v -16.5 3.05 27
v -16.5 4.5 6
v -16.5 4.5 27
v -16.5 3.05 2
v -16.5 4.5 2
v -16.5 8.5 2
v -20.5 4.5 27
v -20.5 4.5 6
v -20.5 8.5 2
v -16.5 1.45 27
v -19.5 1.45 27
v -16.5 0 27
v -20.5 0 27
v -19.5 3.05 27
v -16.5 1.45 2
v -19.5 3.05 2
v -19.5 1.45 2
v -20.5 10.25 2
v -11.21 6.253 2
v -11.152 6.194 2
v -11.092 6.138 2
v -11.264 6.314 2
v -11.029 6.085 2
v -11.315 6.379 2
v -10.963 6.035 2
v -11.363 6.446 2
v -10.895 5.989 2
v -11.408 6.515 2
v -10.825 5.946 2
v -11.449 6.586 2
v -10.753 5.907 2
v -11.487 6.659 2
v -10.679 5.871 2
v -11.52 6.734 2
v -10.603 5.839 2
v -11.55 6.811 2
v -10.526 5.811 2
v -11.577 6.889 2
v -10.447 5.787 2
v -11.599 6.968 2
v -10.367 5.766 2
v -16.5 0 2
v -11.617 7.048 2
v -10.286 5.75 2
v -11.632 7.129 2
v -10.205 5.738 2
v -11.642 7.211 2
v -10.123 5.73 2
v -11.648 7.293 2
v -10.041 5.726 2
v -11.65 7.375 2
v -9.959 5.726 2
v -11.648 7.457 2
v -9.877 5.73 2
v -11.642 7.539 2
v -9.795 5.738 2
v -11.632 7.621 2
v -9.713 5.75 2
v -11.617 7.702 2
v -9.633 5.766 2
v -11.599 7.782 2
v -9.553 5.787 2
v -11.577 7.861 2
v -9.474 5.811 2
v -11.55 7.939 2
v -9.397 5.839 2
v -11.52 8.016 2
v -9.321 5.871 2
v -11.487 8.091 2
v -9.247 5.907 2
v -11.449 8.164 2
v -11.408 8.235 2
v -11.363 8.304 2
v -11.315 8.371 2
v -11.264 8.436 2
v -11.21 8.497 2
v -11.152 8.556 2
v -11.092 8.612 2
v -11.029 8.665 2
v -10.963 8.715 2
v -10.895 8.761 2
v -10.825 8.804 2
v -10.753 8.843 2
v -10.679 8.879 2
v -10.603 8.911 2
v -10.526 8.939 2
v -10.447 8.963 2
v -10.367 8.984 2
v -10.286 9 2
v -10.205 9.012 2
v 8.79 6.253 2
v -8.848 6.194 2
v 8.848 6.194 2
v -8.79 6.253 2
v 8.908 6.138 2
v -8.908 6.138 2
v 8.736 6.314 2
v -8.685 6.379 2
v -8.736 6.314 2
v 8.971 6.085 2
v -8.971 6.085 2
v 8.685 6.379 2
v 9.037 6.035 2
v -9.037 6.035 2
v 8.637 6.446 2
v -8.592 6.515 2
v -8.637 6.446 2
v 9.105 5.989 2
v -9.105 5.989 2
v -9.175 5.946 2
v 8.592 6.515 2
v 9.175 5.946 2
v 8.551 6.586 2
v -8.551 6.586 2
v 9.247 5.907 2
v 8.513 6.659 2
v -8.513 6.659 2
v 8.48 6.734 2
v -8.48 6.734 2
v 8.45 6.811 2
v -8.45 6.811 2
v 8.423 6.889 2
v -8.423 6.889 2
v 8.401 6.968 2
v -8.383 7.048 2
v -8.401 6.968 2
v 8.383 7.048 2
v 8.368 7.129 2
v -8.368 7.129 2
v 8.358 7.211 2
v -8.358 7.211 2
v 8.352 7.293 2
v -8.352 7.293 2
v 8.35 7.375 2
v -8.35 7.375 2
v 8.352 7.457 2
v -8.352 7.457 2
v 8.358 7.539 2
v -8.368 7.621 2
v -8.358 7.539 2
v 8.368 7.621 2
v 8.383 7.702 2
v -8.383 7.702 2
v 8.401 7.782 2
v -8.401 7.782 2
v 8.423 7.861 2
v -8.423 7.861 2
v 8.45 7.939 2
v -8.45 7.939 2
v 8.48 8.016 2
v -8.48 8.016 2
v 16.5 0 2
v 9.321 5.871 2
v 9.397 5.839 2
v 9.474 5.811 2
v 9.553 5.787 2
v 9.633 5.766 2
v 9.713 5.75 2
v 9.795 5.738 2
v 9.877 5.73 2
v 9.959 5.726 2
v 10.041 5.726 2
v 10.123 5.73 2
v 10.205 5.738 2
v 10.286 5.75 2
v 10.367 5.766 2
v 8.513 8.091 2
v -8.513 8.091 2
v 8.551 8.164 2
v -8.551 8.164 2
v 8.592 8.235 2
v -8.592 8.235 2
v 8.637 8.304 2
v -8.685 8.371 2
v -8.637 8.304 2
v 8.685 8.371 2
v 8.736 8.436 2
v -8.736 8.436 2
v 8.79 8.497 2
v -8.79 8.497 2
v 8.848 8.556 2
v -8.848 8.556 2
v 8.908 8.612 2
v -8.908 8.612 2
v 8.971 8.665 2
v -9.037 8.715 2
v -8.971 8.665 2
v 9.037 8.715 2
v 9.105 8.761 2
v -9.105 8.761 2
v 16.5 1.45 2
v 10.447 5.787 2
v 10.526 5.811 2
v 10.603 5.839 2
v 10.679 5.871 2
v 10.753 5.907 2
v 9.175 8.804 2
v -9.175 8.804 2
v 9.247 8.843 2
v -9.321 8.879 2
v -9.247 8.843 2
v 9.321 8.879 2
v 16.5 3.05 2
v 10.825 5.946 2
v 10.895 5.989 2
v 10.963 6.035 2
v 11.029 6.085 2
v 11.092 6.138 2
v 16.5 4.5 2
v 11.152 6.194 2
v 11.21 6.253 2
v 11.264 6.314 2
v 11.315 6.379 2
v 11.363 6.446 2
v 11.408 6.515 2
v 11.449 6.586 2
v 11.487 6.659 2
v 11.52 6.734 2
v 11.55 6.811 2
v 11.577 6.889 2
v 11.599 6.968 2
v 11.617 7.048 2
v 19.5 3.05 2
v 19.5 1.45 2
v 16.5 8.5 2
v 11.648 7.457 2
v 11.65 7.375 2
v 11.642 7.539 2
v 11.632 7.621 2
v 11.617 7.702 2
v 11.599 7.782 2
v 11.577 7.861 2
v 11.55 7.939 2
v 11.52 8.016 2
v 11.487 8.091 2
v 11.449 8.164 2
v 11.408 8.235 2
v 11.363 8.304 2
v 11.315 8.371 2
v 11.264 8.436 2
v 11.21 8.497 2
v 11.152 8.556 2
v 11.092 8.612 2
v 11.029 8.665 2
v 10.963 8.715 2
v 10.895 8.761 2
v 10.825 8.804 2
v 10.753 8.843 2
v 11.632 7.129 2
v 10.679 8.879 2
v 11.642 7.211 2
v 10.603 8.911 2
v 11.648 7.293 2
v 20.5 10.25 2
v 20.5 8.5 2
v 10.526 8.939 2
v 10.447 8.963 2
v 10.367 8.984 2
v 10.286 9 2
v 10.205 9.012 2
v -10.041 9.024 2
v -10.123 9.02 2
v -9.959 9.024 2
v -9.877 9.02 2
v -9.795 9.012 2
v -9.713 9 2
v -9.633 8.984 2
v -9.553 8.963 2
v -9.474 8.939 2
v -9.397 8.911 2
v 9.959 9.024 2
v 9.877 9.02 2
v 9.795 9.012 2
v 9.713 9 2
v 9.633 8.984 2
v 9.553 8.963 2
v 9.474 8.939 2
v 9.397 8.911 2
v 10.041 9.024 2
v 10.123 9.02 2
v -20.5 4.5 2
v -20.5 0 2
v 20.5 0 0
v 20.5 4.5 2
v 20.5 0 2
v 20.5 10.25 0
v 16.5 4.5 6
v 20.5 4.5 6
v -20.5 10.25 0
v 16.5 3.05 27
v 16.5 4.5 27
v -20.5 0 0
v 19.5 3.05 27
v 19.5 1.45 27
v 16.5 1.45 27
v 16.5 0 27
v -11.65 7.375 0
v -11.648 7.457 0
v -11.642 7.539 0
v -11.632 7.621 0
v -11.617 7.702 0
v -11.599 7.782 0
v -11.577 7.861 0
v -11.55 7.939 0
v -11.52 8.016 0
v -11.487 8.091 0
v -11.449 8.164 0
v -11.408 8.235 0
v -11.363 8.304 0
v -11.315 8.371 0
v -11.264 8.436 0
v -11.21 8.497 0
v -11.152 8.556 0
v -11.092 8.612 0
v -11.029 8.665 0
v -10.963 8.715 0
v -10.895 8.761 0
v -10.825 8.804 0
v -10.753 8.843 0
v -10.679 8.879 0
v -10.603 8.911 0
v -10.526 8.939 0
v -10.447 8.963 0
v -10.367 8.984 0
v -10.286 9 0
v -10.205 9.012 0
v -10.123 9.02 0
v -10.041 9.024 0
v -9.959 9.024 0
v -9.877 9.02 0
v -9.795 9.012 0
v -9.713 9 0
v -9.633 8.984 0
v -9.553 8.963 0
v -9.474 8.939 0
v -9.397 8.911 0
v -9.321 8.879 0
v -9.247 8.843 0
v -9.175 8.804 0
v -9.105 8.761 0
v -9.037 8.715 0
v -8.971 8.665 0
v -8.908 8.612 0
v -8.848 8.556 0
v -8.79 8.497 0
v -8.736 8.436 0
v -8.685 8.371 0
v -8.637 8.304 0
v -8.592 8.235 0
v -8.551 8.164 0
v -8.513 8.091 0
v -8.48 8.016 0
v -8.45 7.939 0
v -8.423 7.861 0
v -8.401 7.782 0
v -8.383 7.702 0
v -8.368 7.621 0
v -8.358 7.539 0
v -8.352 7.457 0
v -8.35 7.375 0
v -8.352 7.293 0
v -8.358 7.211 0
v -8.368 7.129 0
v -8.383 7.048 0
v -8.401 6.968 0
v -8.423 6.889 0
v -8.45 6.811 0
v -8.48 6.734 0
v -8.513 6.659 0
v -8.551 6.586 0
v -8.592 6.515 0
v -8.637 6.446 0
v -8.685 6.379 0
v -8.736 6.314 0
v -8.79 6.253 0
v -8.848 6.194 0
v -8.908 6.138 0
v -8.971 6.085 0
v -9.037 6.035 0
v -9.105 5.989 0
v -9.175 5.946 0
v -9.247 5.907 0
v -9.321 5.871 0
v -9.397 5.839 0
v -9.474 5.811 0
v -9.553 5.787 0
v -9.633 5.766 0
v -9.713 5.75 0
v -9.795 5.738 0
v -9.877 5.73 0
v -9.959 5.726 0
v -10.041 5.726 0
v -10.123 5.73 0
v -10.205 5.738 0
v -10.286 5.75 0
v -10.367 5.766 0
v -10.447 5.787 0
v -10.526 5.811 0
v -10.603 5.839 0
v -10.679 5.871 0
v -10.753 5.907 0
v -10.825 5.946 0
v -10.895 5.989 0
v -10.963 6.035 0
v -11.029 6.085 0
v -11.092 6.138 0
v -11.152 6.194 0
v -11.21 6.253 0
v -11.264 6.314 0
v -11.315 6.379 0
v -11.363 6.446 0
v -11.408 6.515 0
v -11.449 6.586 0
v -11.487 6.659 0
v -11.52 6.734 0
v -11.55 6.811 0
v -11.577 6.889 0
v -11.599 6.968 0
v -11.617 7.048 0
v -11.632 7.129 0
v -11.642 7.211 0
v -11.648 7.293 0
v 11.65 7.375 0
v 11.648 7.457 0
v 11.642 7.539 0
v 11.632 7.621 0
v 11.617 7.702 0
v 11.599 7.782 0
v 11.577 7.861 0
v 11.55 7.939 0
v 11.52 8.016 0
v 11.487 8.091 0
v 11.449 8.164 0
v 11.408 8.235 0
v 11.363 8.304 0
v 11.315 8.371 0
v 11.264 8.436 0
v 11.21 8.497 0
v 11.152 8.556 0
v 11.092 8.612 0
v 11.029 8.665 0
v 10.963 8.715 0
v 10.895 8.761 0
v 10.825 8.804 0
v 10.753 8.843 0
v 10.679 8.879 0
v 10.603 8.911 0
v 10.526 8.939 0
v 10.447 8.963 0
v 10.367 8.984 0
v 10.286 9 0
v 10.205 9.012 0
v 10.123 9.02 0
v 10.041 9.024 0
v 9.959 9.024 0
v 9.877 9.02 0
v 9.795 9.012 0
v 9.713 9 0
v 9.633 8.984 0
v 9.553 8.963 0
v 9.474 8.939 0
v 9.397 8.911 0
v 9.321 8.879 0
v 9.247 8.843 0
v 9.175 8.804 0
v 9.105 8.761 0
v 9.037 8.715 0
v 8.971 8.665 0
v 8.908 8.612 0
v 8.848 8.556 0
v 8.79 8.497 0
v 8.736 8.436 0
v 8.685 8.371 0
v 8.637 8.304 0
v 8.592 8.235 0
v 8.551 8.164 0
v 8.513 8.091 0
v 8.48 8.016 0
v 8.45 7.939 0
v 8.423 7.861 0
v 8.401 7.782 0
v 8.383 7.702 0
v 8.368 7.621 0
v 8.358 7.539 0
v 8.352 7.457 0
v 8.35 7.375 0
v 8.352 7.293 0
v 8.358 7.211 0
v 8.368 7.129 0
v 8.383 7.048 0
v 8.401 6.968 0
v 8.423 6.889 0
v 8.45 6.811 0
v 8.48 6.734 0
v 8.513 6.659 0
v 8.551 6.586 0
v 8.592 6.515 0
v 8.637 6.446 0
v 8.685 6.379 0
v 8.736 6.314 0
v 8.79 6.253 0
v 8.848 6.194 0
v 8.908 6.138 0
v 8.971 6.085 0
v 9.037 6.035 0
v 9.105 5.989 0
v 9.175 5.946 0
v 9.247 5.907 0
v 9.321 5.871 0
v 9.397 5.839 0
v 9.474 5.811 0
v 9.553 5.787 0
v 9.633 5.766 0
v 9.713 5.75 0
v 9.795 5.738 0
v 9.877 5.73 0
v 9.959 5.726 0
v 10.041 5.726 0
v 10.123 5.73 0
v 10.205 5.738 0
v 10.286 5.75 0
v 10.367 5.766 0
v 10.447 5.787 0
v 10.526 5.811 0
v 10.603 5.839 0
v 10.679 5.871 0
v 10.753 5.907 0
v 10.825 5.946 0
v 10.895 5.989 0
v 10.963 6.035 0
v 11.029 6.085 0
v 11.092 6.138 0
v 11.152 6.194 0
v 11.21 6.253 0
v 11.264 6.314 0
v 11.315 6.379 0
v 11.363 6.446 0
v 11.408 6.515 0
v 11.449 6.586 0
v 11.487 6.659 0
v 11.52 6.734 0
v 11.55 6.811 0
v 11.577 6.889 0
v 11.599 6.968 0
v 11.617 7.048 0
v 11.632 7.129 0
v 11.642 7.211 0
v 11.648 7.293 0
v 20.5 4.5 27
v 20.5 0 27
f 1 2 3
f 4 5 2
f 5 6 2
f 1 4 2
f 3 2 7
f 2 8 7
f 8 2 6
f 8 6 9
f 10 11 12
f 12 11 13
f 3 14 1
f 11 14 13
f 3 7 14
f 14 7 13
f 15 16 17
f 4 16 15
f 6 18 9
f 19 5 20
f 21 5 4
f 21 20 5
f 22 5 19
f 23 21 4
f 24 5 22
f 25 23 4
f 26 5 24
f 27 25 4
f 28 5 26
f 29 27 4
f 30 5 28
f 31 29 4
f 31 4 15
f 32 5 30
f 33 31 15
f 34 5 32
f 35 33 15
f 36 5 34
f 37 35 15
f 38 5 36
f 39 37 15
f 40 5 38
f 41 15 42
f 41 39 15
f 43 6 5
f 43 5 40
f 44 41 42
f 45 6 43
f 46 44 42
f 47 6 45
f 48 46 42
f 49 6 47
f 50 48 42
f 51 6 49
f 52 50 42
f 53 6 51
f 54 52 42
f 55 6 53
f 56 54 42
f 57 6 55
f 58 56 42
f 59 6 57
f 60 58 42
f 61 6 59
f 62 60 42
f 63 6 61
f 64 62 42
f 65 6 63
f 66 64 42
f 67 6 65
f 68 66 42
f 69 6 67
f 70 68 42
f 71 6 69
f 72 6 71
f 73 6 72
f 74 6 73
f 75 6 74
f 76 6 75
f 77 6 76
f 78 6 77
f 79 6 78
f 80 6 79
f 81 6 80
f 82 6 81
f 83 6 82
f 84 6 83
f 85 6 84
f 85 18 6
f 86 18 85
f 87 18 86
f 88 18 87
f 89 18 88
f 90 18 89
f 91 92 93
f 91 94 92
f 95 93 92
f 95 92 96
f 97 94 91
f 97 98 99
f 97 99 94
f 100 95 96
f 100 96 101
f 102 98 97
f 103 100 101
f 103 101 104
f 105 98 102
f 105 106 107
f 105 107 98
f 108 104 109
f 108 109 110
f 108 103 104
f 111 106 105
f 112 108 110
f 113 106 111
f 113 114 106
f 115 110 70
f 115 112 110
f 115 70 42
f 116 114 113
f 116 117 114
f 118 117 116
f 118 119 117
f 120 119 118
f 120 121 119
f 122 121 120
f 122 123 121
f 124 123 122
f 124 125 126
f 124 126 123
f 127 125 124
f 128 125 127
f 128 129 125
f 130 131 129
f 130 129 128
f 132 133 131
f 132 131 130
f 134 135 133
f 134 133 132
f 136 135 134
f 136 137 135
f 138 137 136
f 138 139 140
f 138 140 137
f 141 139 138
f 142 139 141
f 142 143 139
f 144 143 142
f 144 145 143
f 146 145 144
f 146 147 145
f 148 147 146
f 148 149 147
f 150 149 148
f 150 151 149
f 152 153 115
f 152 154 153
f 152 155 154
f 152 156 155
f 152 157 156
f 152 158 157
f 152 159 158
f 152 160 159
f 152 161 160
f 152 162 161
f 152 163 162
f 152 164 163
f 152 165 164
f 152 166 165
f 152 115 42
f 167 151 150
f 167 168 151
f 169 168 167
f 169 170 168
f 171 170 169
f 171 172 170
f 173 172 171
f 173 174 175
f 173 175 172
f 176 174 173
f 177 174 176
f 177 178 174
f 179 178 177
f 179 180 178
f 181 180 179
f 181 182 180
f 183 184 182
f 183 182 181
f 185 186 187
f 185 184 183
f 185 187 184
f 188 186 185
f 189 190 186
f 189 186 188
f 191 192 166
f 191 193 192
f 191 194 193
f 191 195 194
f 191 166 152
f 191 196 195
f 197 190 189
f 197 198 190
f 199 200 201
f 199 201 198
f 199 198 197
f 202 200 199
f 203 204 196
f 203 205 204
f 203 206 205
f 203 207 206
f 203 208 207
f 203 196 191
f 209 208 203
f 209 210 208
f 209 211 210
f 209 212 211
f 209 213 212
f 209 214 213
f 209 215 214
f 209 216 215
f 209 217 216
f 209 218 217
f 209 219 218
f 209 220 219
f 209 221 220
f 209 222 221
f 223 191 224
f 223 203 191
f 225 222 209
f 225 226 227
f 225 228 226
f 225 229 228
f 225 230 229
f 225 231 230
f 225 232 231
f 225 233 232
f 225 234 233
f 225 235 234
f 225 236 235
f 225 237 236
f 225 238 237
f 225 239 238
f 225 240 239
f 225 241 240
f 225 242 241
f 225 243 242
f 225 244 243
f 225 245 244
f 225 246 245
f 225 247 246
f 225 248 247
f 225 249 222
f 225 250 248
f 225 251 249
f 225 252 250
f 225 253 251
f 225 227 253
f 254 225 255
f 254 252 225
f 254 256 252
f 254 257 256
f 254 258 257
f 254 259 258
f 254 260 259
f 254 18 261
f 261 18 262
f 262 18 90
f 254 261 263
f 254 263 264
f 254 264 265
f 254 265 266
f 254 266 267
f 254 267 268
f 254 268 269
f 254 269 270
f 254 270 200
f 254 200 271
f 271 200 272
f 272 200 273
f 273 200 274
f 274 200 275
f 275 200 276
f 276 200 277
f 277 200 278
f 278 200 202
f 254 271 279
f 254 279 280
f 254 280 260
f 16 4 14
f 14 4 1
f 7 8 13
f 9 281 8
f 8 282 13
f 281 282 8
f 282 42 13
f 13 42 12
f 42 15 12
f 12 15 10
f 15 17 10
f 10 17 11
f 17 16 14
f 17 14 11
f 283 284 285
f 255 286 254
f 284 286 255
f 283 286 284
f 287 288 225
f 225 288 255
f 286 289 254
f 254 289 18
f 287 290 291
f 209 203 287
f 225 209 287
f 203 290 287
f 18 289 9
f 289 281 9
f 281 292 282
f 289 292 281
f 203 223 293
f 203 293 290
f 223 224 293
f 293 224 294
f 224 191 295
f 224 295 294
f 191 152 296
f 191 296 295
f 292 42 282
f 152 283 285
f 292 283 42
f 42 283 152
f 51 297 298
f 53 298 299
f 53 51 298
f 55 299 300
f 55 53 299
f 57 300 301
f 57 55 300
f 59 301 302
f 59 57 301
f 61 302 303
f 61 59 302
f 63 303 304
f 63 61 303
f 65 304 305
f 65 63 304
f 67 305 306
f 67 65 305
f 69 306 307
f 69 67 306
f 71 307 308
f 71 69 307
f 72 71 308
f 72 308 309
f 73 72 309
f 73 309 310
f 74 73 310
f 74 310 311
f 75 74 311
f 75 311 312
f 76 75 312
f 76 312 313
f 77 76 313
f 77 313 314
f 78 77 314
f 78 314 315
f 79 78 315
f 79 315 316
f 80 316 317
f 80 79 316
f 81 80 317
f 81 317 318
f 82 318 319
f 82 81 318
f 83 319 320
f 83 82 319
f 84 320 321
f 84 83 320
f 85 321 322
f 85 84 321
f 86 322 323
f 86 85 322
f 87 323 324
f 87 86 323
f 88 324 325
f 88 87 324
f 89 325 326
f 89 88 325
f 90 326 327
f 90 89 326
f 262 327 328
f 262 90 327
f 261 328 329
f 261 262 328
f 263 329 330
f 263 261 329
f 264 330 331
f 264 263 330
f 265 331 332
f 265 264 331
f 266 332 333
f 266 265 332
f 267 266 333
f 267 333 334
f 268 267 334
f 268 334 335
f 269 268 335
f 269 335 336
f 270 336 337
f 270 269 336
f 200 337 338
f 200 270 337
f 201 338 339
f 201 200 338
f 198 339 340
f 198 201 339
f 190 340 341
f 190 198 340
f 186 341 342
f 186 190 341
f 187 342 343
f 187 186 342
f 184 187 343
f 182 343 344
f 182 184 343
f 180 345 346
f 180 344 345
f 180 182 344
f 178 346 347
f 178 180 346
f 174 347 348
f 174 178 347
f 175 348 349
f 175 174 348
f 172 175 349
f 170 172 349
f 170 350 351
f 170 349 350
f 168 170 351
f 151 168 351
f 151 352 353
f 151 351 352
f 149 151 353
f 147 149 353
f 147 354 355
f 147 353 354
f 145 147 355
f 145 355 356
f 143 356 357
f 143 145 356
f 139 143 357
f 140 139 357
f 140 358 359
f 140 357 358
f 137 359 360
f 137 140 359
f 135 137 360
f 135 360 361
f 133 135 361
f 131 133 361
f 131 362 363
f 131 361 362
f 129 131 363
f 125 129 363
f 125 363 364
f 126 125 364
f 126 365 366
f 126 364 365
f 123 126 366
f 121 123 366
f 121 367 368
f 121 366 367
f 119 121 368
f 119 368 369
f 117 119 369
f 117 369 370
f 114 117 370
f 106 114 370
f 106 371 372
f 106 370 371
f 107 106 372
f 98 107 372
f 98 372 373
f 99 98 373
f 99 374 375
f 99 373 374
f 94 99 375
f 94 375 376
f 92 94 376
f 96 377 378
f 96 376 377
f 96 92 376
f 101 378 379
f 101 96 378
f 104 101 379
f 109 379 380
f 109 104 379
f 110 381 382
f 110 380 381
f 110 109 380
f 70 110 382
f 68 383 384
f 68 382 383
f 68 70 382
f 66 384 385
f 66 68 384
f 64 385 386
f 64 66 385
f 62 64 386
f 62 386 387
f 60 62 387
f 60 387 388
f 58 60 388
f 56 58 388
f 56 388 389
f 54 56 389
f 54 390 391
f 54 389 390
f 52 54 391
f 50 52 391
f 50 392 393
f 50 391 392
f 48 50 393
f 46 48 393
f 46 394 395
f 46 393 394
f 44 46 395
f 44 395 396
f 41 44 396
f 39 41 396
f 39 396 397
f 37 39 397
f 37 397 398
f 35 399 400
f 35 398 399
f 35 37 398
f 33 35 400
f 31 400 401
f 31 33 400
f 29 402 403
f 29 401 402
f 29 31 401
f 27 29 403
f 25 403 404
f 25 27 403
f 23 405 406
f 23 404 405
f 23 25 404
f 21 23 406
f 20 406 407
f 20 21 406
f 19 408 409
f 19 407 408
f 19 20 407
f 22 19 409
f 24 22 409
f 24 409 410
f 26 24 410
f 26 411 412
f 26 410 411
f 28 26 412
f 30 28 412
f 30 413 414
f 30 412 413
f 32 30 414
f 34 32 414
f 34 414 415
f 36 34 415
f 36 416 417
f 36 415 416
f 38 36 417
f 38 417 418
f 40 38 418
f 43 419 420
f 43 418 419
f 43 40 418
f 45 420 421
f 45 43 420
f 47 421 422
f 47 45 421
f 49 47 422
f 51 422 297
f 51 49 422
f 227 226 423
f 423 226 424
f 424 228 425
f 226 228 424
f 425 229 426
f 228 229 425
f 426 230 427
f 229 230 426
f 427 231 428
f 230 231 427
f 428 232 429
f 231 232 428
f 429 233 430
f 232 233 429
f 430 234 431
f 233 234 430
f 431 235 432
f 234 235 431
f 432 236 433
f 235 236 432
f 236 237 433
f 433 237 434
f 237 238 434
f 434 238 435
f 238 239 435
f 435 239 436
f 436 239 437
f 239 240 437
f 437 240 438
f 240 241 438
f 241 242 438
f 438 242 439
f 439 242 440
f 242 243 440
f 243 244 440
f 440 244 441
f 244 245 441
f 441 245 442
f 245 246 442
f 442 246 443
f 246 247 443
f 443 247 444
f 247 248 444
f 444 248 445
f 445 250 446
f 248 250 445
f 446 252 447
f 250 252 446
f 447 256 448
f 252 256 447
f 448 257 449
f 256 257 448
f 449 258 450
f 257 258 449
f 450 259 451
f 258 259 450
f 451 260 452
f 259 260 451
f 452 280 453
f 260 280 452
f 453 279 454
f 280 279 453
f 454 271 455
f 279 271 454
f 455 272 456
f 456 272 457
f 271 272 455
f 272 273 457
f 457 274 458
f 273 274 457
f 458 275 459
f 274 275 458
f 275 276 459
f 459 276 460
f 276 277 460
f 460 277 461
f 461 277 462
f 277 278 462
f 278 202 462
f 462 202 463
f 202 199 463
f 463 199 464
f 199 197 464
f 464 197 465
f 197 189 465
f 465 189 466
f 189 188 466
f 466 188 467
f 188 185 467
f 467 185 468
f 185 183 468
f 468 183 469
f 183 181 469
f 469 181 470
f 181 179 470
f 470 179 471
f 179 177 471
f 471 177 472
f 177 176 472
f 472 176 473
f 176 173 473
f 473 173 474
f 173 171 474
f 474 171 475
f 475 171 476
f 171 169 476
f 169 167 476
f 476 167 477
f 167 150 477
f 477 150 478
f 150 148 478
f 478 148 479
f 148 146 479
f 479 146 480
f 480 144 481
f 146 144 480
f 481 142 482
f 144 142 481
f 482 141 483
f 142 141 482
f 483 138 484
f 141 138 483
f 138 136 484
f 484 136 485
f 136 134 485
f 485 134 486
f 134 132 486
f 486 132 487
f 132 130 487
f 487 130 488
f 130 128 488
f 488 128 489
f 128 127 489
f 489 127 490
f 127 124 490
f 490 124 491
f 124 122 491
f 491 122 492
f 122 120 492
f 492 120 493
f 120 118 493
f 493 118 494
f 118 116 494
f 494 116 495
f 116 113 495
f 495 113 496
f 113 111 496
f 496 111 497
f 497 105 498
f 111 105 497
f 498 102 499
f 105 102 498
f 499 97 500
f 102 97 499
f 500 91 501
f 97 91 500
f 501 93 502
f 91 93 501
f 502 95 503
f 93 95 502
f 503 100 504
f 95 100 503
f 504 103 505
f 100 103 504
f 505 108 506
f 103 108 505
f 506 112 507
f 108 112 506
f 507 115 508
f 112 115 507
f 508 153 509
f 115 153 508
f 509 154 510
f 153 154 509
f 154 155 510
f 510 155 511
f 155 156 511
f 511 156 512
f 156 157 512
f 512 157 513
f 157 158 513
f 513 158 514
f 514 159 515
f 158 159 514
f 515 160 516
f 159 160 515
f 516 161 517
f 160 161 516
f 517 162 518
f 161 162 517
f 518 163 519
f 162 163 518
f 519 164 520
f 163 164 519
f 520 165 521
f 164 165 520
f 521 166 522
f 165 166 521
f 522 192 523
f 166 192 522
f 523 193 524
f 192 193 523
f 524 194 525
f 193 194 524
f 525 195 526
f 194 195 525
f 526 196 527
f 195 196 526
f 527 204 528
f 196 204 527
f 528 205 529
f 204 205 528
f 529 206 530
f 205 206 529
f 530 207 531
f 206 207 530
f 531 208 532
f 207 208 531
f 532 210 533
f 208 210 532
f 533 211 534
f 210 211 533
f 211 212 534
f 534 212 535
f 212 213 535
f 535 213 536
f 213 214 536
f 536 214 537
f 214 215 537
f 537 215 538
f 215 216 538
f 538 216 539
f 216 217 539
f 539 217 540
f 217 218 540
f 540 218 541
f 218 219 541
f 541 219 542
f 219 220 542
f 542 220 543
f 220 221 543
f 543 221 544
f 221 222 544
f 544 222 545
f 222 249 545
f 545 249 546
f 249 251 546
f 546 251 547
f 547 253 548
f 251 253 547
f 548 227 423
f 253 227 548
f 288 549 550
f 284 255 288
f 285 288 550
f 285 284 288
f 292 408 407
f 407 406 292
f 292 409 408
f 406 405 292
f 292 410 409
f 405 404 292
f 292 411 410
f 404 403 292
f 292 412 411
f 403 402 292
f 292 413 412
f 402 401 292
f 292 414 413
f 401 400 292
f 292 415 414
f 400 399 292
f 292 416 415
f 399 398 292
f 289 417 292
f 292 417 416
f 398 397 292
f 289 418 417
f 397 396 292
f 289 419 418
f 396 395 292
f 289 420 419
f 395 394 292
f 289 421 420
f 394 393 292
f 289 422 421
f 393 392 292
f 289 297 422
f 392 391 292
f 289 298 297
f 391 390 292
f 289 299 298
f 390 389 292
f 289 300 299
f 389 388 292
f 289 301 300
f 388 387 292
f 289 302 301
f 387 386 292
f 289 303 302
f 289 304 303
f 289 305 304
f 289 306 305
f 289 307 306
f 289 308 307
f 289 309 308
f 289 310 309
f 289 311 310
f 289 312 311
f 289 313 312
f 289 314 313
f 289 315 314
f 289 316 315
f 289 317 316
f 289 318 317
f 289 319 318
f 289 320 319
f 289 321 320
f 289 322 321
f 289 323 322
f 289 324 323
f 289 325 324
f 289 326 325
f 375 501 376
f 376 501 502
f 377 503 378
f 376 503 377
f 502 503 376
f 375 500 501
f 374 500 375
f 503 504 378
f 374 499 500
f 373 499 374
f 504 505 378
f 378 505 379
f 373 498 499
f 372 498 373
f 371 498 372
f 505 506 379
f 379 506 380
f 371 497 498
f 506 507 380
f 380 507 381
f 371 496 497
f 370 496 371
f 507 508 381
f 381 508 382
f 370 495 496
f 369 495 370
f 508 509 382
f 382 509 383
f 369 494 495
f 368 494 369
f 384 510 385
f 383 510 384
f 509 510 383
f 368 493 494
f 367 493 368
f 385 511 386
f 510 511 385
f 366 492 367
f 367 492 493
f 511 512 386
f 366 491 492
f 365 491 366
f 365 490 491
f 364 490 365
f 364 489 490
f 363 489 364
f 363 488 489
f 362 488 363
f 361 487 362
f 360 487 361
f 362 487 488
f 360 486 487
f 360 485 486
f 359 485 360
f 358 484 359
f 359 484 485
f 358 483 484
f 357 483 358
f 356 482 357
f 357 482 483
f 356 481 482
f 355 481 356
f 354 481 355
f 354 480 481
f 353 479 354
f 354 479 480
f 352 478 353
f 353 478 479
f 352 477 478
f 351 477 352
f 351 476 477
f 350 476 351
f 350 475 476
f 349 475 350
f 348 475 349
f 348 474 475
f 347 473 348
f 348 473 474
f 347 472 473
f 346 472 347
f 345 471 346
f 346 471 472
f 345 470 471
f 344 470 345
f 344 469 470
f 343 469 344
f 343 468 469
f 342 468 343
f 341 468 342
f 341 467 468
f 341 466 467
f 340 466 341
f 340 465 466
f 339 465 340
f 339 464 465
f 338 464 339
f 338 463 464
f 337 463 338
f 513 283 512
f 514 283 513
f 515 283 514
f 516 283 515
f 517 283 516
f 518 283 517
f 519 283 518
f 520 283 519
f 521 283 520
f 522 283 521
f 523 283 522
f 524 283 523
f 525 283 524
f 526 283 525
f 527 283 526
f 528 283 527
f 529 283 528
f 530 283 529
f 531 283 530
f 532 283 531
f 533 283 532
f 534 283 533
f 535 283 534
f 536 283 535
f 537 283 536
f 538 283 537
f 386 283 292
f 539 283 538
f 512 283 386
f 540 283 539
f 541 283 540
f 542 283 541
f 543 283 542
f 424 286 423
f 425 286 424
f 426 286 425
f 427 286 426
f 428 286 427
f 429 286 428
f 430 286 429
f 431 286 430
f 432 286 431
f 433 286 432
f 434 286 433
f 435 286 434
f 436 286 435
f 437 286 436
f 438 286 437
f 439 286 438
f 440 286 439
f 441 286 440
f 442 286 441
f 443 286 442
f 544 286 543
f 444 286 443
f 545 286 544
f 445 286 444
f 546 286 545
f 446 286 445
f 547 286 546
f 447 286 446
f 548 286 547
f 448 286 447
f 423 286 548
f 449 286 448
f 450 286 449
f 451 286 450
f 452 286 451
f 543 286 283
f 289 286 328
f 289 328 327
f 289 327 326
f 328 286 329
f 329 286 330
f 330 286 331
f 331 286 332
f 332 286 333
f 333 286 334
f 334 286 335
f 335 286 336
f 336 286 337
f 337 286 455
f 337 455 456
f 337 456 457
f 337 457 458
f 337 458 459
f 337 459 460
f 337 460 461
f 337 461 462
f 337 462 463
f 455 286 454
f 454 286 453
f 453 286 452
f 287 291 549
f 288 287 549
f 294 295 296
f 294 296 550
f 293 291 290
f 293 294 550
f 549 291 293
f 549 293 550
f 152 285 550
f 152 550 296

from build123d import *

# Parameters (mm, degrees)
SKETCH_W     = 41
SKETCH_H     = 10.25
PAD_DEPTH    = 2
PAD001_DEPTH = 25
SKETCH003_R  = 1.65
POCKET_DEPTH = 102.301798
CHAMFER_SIZE = 4


with BuildPart() as part:
    # Sketch → Pad (new body)
    with BuildSketch(Plane.XY):
        with Locations((0, 5.125)):
            Rectangle(SKETCH_W, SKETCH_H)
    extrude(amount=PAD_DEPTH)

    # Sketch002 (on Face6 of Pad) → Pad001 (join)
    with BuildSketch(Plane.XY.offset(2)):
        Polygon((16.5, 4.5), (20.5, 4.5), (20.5, 0), (16.5, 0), (16.5, 1.45), (19.5, 1.45), (19.5, 3.05), (16.5, 3.05), align=None)
    pad001 = extrude(amount=PAD001_DEPTH)

    # Sketch003 (on Face5 of Pad001) → Pocket (cut, through all)
    with BuildSketch(Plane.XY.offset(2)):
        with Locations((10, 7.375)):
            Circle(SKETCH003_R)
    pocket = extrude(amount=-POCKET_DEPTH, mode=Mode.SUBTRACT)

    # Mirrored: Pocket, Pad001 across Sketch003 V_Axis
    add(pocket.mirror(Plane(origin=(0, 0, 2), x_dir=(0, 0, 1), z_dir=(1, 0, 0))), mode=Mode.SUBTRACT)
    add(pad001.mirror(Plane(origin=(0, 0, 2), x_dir=(0, 0, 1), z_dir=(1, 0, 0))))

    # Chamfer
    chamfer_edges = [part.edges().sort_by_distance(p)[0] for p in [
        (18.5, 4.5, 2),
        (-18.5, 4.5, 2),
    ]]
    chamfer(chamfer_edges, length=CHAMFER_SIZE)


solid = part.part
